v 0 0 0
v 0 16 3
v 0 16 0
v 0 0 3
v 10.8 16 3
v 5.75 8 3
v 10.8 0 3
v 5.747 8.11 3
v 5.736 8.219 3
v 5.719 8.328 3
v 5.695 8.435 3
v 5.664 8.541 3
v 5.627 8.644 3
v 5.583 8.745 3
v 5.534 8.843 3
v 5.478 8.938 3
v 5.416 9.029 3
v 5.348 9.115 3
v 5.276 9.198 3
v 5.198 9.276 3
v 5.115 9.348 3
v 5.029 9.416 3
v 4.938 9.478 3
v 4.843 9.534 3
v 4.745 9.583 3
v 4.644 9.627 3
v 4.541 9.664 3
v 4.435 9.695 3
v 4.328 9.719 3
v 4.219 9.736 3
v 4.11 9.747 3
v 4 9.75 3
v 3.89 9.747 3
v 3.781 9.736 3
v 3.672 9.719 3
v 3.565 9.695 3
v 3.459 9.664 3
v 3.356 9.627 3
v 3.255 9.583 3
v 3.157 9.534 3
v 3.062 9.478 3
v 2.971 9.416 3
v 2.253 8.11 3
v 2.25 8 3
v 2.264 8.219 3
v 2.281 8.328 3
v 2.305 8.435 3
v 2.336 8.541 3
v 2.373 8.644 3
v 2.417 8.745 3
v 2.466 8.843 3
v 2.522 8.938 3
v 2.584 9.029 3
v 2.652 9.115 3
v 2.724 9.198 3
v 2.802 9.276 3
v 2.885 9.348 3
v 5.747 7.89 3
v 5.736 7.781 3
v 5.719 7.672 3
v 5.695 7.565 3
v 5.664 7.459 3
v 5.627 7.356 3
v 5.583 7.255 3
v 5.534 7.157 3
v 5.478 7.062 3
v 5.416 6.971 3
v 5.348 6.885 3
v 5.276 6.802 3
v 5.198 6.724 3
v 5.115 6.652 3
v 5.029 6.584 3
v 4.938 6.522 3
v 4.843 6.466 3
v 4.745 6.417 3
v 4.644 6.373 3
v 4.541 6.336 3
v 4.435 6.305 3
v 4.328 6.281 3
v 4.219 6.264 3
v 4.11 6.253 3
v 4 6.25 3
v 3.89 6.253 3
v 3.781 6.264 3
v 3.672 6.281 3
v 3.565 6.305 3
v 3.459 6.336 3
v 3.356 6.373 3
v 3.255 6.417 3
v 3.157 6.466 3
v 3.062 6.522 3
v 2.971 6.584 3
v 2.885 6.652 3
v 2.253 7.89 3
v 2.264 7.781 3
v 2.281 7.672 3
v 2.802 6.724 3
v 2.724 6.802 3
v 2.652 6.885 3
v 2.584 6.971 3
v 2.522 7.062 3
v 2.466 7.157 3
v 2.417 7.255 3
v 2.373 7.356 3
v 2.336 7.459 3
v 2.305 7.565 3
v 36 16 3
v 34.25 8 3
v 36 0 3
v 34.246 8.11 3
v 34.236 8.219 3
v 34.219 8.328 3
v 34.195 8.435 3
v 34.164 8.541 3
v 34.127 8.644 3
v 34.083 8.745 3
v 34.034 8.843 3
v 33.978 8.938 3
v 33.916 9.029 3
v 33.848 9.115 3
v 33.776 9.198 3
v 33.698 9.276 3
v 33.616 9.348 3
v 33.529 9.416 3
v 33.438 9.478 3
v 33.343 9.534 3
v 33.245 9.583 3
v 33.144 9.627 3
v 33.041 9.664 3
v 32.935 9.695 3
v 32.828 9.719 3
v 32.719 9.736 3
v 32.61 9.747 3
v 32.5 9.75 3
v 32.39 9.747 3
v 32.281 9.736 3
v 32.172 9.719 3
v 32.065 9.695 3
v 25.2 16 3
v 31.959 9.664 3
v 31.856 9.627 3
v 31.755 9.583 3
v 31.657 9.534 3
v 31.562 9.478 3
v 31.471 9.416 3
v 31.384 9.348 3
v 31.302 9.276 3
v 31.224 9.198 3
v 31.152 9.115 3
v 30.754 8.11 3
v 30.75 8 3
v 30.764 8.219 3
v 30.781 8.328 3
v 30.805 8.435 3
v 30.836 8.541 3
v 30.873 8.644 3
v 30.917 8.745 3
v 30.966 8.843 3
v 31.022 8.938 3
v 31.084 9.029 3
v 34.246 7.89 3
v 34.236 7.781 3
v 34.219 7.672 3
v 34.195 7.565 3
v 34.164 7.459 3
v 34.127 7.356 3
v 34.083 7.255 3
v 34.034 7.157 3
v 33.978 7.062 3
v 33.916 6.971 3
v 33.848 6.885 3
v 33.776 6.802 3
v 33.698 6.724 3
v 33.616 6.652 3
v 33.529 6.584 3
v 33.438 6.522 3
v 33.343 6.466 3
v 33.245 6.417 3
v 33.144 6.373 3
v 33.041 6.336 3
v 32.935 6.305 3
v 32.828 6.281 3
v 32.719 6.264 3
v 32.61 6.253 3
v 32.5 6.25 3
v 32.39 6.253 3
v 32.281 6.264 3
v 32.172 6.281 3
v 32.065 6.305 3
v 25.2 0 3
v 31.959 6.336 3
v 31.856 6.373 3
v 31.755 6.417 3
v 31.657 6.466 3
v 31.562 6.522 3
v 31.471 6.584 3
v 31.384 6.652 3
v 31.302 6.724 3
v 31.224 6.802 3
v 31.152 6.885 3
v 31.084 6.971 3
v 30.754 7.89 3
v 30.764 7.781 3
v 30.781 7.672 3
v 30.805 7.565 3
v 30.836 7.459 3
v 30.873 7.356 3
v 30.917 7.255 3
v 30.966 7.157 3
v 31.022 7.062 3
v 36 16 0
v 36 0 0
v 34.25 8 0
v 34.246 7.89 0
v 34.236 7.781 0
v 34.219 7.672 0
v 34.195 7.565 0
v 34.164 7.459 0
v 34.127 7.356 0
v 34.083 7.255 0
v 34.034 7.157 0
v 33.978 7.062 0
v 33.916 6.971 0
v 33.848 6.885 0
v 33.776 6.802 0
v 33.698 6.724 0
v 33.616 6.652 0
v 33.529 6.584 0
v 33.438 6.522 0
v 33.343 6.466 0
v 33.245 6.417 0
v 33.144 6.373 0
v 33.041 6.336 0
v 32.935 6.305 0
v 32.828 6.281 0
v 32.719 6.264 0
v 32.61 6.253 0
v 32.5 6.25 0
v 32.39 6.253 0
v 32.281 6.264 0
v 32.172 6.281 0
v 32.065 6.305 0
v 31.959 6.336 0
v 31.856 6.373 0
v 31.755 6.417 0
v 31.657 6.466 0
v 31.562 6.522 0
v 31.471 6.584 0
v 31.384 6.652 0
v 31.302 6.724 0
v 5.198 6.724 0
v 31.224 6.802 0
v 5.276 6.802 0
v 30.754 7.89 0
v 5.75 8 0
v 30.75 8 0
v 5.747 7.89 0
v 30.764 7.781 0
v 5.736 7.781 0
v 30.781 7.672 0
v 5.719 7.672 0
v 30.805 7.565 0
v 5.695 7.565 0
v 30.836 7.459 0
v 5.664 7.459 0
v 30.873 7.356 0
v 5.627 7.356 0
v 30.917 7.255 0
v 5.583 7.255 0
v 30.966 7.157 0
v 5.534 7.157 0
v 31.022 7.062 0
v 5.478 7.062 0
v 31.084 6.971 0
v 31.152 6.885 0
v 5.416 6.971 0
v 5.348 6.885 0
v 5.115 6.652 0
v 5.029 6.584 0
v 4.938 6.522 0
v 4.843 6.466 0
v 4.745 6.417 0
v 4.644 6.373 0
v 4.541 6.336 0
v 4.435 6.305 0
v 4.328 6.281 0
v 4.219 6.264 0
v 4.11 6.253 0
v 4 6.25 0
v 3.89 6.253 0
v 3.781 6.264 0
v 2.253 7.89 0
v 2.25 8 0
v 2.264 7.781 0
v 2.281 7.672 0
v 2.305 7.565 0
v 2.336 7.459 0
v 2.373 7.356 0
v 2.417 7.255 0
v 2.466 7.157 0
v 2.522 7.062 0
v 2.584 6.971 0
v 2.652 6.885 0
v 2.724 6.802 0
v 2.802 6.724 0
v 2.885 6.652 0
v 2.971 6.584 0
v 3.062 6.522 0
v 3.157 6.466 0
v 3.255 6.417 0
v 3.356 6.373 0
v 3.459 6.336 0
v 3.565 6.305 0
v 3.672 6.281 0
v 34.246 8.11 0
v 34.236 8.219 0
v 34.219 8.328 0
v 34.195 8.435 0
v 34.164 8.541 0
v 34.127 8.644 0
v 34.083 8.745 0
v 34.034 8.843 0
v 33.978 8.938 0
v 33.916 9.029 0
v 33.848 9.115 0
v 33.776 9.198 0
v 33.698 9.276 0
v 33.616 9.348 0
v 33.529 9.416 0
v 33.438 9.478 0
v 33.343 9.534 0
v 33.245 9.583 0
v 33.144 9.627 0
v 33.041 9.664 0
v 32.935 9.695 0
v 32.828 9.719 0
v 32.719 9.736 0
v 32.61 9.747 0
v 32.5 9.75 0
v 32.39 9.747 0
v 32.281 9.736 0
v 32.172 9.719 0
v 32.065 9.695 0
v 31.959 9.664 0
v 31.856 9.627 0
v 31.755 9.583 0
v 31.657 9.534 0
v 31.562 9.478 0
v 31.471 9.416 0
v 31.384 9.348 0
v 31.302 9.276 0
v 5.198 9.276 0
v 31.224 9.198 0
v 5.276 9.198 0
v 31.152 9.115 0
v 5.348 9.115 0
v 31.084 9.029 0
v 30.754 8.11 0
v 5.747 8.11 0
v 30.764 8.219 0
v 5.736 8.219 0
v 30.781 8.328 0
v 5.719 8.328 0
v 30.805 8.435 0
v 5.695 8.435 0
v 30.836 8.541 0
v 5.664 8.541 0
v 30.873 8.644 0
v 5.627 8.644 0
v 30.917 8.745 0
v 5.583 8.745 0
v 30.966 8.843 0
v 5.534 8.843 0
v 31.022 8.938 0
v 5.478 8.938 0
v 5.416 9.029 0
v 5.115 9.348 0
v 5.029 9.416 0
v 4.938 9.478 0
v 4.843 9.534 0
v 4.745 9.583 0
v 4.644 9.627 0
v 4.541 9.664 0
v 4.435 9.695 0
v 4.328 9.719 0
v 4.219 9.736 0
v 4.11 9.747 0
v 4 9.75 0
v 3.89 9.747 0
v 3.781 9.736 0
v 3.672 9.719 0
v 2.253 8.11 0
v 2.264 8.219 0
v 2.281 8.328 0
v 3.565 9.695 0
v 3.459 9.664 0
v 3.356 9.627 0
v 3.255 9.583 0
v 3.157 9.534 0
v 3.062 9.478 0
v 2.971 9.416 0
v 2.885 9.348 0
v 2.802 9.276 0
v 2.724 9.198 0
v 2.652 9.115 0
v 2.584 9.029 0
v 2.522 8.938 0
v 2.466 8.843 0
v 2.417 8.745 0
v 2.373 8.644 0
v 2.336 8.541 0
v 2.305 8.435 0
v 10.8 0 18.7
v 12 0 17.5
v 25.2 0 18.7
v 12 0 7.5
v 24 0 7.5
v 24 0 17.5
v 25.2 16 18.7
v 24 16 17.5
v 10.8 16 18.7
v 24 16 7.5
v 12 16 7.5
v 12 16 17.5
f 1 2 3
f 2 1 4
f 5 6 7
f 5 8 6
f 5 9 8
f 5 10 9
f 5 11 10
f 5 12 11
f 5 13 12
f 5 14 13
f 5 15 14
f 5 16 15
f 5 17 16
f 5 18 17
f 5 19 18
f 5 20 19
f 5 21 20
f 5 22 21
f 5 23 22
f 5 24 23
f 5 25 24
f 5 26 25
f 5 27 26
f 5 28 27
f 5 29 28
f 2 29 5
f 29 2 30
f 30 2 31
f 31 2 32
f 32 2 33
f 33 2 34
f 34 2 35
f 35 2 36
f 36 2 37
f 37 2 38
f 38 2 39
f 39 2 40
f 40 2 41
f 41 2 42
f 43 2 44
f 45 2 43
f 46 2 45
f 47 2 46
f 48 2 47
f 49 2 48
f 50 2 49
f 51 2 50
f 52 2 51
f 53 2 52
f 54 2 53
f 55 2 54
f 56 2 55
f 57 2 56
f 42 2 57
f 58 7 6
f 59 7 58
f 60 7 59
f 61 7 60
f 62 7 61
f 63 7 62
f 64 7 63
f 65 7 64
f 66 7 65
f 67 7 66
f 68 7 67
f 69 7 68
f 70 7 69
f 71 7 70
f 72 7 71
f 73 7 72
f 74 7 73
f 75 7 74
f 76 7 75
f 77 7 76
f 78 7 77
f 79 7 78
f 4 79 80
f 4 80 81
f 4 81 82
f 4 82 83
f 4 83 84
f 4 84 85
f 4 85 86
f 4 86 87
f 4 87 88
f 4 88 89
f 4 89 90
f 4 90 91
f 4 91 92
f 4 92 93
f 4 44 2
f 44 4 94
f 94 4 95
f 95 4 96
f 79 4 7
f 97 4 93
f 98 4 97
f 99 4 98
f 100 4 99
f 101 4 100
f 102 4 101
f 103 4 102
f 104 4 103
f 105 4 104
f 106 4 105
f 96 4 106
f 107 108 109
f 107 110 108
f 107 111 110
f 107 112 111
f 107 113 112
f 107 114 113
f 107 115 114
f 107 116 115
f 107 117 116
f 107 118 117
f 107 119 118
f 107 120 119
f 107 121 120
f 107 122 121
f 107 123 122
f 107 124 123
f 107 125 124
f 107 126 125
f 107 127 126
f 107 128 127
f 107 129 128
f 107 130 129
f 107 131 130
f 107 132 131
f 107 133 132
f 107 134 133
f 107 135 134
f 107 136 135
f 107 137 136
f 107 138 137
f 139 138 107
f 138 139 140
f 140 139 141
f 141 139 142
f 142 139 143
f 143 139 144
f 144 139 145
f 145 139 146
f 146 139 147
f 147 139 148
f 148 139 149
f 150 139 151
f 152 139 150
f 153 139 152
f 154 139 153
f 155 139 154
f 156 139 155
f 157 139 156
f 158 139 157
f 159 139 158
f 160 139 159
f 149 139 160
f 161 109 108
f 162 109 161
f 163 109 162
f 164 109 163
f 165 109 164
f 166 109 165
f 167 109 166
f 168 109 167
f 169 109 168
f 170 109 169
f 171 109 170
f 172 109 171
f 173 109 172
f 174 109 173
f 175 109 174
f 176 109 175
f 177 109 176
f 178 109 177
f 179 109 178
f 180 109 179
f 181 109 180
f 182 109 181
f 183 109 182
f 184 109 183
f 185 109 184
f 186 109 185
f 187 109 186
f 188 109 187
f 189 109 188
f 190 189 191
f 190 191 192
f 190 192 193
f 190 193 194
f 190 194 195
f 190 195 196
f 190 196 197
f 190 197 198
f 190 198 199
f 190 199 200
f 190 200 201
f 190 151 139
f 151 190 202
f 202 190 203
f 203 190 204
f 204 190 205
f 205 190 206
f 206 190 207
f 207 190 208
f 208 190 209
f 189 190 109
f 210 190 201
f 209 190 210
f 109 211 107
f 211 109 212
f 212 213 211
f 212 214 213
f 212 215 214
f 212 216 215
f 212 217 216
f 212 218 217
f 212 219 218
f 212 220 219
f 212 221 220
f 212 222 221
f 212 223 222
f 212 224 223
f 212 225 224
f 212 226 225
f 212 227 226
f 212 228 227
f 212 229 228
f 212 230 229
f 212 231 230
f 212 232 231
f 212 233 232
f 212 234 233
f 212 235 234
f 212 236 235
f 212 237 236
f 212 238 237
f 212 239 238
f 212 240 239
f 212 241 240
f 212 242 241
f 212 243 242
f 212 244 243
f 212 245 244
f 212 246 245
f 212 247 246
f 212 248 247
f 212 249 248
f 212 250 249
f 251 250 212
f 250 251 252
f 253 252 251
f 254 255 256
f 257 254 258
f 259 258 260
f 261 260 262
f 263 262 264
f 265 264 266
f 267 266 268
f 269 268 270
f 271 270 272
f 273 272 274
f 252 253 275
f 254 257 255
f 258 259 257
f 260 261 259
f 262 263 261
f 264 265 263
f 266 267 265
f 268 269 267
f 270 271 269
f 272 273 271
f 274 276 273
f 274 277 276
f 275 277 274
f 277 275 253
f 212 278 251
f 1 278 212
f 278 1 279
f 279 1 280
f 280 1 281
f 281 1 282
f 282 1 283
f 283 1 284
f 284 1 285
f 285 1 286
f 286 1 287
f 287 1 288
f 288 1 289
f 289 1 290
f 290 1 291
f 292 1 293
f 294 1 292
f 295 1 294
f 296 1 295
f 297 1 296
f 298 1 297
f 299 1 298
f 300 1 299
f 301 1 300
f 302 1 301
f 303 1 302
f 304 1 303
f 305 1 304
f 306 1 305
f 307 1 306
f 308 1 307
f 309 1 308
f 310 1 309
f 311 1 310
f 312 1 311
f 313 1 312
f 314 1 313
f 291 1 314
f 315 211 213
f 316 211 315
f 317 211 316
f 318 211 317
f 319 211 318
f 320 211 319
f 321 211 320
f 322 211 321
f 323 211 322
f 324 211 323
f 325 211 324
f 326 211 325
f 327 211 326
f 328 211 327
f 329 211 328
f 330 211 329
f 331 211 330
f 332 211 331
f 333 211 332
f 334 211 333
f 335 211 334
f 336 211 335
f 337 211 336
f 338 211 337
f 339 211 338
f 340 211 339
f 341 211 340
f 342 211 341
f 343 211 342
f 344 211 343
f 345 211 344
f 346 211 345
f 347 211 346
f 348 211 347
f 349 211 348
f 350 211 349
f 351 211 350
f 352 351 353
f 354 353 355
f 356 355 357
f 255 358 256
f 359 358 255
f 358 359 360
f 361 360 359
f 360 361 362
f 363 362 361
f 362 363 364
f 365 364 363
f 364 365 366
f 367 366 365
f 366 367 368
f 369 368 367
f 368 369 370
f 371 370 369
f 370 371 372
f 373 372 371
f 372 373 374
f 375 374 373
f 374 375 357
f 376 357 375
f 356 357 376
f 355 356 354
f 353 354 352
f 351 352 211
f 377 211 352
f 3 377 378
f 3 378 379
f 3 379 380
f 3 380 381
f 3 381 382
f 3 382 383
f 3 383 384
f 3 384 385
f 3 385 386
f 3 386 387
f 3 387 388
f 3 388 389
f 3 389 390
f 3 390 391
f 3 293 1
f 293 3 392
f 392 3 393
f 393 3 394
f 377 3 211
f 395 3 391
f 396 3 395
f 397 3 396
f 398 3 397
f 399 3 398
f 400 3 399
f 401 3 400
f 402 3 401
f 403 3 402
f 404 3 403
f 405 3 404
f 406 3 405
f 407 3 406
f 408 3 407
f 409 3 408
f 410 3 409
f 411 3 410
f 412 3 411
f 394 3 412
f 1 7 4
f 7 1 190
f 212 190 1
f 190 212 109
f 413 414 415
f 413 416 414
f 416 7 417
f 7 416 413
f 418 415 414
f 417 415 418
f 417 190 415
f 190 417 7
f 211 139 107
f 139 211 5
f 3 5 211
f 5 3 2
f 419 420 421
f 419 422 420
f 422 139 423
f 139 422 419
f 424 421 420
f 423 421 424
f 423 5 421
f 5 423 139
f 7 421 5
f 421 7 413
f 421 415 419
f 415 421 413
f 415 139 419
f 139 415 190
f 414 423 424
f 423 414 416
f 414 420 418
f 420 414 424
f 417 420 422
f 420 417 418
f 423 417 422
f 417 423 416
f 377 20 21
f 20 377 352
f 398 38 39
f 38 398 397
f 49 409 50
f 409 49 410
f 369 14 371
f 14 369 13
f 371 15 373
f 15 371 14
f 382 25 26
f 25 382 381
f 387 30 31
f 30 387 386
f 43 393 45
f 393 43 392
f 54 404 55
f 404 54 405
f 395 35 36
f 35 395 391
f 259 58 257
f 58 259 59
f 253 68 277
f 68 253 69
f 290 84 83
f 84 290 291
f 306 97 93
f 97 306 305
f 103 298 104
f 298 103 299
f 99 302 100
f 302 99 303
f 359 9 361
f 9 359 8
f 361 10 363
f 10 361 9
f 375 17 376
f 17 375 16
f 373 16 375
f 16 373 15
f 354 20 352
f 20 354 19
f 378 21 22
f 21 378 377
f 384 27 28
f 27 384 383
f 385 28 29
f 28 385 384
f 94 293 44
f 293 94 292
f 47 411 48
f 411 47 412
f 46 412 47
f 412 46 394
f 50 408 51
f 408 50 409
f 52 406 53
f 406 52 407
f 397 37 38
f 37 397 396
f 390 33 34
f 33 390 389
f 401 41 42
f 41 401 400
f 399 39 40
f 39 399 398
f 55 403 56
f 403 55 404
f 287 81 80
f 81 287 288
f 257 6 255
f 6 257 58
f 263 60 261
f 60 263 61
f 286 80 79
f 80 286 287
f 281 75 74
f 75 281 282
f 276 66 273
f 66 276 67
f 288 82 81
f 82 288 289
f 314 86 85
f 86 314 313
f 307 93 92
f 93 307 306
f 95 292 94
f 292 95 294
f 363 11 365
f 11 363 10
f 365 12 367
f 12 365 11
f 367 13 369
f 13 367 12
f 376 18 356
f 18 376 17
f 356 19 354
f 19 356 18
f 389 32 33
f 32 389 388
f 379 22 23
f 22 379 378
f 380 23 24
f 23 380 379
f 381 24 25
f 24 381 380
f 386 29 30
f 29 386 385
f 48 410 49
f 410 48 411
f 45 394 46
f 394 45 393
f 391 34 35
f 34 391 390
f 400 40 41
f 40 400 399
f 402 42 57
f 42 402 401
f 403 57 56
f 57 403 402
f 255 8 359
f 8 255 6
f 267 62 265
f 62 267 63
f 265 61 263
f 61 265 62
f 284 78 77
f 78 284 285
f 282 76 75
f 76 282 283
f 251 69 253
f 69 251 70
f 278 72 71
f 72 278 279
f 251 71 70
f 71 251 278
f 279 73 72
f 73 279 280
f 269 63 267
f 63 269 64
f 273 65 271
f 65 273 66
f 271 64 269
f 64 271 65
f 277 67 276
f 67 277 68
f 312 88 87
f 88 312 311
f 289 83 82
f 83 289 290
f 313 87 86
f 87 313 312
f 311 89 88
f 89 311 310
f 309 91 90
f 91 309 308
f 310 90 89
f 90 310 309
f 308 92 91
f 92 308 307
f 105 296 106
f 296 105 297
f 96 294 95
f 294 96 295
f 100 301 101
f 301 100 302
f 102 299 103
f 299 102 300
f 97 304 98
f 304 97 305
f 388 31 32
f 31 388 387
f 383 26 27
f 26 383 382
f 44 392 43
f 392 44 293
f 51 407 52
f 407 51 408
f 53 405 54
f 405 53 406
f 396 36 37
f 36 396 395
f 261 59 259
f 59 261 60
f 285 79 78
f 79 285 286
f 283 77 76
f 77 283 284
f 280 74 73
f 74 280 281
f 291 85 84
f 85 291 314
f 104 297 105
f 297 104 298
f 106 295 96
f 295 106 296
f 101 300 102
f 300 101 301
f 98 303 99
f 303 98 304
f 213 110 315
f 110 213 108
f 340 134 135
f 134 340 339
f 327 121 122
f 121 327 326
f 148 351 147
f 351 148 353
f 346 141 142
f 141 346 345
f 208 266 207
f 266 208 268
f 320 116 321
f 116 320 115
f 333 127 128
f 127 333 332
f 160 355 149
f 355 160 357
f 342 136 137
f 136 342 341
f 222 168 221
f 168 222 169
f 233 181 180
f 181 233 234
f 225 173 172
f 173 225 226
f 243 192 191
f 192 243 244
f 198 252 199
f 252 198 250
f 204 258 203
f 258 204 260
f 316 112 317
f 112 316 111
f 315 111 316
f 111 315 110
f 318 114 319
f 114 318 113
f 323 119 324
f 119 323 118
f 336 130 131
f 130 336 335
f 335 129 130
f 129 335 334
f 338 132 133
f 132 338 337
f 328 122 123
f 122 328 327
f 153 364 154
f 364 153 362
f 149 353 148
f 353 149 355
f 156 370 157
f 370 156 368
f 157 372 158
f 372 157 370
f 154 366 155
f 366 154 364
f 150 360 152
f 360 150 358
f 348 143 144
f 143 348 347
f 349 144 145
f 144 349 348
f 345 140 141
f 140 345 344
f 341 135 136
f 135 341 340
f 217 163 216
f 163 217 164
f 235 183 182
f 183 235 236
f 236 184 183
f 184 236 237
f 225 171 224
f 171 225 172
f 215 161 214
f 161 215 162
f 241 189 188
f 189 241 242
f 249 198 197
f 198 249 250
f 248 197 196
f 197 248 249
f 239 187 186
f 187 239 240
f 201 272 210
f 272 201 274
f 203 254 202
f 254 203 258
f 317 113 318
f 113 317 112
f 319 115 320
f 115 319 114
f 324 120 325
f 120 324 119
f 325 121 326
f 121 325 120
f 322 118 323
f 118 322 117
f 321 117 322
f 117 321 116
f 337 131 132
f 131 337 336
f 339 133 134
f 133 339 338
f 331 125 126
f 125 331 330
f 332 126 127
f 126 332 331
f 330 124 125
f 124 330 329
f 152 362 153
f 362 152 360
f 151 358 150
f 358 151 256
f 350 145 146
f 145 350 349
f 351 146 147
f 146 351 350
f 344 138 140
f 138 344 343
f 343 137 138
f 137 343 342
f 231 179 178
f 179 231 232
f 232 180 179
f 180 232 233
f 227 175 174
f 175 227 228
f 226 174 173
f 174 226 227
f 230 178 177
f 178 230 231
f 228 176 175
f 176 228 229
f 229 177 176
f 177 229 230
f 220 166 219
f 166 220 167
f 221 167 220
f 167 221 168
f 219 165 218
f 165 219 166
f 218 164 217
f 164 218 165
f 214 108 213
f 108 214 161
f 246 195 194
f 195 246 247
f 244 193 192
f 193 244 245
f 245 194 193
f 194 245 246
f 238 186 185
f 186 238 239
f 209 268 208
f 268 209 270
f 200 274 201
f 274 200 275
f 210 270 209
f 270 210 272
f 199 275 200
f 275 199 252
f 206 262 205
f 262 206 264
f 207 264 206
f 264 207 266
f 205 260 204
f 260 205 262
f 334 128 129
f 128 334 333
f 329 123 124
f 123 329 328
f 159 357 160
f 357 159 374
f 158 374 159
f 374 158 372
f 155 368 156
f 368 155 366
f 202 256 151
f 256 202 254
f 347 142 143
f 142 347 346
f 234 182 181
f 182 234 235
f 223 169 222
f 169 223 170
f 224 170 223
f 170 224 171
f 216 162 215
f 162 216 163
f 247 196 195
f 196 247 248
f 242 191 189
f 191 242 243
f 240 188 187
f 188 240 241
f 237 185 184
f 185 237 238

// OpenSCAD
// 12 x 10 dira motoru
// 16 sirka, 8 od okraje k dire
// 28 roztec der
// 25 vyska
$fn=100;

module drzak() {
    difference() {
        union() {
            cube([36,16,3]);
            translate([10.8,0,0]) cube([1.2*2+12,16,7.5+10+1.2]);
        }
        translate([10.8+1.2,-10,7.5]) #cube([12,40,10]);
        translate([18-14,8,-1]) # cylinder(d=3.5,h=10);
        translate([18+14.5,8,-1]) # cylinder(d=3.5,h=10);
    }
}

drzak();
